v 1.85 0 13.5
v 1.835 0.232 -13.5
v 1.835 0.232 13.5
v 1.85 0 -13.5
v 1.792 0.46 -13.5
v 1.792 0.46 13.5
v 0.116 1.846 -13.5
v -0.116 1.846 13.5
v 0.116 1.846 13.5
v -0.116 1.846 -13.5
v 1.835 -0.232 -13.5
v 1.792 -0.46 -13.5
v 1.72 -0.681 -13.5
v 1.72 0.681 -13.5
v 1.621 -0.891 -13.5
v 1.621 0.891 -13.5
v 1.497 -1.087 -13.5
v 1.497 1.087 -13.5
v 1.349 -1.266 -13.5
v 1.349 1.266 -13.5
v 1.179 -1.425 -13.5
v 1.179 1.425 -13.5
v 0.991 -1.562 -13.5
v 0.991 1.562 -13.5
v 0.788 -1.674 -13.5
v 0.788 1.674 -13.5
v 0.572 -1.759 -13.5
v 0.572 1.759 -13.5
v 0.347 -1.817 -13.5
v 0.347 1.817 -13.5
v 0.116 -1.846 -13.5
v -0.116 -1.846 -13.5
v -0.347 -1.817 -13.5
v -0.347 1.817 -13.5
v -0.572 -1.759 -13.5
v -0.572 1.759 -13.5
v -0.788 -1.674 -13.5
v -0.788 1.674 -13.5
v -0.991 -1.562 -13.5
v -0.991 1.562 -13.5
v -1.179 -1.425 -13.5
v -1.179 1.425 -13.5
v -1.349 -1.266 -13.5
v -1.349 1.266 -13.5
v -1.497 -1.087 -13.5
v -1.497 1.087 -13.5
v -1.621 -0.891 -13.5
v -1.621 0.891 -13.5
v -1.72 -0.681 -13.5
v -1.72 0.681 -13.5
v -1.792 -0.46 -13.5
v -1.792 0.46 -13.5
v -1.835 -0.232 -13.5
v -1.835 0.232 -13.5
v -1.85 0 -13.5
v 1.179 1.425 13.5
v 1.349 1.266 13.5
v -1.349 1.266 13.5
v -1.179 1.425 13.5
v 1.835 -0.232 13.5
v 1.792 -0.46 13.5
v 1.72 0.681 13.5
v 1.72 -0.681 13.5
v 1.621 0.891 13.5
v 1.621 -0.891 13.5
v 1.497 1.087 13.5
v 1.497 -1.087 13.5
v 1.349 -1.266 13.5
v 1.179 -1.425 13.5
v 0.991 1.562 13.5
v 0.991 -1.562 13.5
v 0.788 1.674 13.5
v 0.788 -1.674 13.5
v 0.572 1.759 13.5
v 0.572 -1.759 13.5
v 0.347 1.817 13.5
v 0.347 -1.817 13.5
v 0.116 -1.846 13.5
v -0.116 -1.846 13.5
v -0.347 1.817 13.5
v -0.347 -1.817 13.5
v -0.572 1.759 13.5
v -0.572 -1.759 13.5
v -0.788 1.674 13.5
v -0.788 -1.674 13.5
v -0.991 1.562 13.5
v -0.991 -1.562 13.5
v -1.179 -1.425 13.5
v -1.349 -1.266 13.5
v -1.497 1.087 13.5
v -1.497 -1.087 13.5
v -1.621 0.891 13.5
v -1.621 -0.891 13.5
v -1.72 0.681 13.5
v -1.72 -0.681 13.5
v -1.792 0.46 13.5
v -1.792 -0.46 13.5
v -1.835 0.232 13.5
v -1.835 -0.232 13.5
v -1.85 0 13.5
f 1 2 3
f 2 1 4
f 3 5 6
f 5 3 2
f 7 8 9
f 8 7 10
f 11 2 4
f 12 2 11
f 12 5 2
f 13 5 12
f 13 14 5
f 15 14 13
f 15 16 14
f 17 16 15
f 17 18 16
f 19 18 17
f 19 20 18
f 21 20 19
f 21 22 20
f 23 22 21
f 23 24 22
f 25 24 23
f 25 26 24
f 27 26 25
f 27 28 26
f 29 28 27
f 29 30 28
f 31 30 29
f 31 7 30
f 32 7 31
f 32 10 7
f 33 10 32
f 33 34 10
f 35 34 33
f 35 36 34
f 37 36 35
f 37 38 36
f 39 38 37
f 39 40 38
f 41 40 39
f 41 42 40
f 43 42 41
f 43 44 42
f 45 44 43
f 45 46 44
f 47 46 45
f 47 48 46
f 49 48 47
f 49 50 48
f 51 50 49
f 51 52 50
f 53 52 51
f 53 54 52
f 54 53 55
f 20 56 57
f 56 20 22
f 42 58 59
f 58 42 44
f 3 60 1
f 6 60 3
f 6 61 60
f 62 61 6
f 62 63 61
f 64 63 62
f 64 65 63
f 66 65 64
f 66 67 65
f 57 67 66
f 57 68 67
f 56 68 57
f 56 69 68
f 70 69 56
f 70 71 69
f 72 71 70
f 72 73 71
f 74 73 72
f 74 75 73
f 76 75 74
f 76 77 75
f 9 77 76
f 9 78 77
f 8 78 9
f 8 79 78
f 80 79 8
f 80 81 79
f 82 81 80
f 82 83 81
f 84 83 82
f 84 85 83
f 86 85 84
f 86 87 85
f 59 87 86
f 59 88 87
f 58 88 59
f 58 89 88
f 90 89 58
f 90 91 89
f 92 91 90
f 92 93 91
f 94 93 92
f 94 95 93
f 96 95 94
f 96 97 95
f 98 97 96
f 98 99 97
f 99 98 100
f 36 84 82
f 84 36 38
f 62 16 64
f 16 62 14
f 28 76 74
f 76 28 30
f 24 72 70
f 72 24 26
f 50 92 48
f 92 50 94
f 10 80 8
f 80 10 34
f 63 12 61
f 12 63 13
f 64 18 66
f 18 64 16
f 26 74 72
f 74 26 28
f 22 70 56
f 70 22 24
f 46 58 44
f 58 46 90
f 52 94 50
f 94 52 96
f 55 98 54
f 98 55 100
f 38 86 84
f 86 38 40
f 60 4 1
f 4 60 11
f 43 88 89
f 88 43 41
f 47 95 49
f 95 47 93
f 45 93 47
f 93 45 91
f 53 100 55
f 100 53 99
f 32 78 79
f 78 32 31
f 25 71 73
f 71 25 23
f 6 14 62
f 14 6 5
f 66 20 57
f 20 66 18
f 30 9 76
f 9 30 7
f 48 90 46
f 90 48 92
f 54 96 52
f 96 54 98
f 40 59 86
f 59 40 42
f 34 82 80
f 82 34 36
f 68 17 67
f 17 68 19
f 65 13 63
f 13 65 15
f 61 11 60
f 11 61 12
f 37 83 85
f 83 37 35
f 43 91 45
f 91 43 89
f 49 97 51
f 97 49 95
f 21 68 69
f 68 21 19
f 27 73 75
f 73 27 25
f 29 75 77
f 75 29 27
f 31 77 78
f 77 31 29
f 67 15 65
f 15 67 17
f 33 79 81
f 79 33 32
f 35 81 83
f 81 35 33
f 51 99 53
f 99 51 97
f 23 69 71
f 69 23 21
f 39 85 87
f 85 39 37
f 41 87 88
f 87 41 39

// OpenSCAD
$fn = 50;


difference() {
	union() {
		translate(v = [0, 0, -13.5000000000]) {
			cylinder(h = 27, r = 1.8500000000);
		}
	}
	union() {
		translate(v = [0, 0, -100.0000000000]) {
			cylinder(h = 200, r = 0);
		}
	}
}
